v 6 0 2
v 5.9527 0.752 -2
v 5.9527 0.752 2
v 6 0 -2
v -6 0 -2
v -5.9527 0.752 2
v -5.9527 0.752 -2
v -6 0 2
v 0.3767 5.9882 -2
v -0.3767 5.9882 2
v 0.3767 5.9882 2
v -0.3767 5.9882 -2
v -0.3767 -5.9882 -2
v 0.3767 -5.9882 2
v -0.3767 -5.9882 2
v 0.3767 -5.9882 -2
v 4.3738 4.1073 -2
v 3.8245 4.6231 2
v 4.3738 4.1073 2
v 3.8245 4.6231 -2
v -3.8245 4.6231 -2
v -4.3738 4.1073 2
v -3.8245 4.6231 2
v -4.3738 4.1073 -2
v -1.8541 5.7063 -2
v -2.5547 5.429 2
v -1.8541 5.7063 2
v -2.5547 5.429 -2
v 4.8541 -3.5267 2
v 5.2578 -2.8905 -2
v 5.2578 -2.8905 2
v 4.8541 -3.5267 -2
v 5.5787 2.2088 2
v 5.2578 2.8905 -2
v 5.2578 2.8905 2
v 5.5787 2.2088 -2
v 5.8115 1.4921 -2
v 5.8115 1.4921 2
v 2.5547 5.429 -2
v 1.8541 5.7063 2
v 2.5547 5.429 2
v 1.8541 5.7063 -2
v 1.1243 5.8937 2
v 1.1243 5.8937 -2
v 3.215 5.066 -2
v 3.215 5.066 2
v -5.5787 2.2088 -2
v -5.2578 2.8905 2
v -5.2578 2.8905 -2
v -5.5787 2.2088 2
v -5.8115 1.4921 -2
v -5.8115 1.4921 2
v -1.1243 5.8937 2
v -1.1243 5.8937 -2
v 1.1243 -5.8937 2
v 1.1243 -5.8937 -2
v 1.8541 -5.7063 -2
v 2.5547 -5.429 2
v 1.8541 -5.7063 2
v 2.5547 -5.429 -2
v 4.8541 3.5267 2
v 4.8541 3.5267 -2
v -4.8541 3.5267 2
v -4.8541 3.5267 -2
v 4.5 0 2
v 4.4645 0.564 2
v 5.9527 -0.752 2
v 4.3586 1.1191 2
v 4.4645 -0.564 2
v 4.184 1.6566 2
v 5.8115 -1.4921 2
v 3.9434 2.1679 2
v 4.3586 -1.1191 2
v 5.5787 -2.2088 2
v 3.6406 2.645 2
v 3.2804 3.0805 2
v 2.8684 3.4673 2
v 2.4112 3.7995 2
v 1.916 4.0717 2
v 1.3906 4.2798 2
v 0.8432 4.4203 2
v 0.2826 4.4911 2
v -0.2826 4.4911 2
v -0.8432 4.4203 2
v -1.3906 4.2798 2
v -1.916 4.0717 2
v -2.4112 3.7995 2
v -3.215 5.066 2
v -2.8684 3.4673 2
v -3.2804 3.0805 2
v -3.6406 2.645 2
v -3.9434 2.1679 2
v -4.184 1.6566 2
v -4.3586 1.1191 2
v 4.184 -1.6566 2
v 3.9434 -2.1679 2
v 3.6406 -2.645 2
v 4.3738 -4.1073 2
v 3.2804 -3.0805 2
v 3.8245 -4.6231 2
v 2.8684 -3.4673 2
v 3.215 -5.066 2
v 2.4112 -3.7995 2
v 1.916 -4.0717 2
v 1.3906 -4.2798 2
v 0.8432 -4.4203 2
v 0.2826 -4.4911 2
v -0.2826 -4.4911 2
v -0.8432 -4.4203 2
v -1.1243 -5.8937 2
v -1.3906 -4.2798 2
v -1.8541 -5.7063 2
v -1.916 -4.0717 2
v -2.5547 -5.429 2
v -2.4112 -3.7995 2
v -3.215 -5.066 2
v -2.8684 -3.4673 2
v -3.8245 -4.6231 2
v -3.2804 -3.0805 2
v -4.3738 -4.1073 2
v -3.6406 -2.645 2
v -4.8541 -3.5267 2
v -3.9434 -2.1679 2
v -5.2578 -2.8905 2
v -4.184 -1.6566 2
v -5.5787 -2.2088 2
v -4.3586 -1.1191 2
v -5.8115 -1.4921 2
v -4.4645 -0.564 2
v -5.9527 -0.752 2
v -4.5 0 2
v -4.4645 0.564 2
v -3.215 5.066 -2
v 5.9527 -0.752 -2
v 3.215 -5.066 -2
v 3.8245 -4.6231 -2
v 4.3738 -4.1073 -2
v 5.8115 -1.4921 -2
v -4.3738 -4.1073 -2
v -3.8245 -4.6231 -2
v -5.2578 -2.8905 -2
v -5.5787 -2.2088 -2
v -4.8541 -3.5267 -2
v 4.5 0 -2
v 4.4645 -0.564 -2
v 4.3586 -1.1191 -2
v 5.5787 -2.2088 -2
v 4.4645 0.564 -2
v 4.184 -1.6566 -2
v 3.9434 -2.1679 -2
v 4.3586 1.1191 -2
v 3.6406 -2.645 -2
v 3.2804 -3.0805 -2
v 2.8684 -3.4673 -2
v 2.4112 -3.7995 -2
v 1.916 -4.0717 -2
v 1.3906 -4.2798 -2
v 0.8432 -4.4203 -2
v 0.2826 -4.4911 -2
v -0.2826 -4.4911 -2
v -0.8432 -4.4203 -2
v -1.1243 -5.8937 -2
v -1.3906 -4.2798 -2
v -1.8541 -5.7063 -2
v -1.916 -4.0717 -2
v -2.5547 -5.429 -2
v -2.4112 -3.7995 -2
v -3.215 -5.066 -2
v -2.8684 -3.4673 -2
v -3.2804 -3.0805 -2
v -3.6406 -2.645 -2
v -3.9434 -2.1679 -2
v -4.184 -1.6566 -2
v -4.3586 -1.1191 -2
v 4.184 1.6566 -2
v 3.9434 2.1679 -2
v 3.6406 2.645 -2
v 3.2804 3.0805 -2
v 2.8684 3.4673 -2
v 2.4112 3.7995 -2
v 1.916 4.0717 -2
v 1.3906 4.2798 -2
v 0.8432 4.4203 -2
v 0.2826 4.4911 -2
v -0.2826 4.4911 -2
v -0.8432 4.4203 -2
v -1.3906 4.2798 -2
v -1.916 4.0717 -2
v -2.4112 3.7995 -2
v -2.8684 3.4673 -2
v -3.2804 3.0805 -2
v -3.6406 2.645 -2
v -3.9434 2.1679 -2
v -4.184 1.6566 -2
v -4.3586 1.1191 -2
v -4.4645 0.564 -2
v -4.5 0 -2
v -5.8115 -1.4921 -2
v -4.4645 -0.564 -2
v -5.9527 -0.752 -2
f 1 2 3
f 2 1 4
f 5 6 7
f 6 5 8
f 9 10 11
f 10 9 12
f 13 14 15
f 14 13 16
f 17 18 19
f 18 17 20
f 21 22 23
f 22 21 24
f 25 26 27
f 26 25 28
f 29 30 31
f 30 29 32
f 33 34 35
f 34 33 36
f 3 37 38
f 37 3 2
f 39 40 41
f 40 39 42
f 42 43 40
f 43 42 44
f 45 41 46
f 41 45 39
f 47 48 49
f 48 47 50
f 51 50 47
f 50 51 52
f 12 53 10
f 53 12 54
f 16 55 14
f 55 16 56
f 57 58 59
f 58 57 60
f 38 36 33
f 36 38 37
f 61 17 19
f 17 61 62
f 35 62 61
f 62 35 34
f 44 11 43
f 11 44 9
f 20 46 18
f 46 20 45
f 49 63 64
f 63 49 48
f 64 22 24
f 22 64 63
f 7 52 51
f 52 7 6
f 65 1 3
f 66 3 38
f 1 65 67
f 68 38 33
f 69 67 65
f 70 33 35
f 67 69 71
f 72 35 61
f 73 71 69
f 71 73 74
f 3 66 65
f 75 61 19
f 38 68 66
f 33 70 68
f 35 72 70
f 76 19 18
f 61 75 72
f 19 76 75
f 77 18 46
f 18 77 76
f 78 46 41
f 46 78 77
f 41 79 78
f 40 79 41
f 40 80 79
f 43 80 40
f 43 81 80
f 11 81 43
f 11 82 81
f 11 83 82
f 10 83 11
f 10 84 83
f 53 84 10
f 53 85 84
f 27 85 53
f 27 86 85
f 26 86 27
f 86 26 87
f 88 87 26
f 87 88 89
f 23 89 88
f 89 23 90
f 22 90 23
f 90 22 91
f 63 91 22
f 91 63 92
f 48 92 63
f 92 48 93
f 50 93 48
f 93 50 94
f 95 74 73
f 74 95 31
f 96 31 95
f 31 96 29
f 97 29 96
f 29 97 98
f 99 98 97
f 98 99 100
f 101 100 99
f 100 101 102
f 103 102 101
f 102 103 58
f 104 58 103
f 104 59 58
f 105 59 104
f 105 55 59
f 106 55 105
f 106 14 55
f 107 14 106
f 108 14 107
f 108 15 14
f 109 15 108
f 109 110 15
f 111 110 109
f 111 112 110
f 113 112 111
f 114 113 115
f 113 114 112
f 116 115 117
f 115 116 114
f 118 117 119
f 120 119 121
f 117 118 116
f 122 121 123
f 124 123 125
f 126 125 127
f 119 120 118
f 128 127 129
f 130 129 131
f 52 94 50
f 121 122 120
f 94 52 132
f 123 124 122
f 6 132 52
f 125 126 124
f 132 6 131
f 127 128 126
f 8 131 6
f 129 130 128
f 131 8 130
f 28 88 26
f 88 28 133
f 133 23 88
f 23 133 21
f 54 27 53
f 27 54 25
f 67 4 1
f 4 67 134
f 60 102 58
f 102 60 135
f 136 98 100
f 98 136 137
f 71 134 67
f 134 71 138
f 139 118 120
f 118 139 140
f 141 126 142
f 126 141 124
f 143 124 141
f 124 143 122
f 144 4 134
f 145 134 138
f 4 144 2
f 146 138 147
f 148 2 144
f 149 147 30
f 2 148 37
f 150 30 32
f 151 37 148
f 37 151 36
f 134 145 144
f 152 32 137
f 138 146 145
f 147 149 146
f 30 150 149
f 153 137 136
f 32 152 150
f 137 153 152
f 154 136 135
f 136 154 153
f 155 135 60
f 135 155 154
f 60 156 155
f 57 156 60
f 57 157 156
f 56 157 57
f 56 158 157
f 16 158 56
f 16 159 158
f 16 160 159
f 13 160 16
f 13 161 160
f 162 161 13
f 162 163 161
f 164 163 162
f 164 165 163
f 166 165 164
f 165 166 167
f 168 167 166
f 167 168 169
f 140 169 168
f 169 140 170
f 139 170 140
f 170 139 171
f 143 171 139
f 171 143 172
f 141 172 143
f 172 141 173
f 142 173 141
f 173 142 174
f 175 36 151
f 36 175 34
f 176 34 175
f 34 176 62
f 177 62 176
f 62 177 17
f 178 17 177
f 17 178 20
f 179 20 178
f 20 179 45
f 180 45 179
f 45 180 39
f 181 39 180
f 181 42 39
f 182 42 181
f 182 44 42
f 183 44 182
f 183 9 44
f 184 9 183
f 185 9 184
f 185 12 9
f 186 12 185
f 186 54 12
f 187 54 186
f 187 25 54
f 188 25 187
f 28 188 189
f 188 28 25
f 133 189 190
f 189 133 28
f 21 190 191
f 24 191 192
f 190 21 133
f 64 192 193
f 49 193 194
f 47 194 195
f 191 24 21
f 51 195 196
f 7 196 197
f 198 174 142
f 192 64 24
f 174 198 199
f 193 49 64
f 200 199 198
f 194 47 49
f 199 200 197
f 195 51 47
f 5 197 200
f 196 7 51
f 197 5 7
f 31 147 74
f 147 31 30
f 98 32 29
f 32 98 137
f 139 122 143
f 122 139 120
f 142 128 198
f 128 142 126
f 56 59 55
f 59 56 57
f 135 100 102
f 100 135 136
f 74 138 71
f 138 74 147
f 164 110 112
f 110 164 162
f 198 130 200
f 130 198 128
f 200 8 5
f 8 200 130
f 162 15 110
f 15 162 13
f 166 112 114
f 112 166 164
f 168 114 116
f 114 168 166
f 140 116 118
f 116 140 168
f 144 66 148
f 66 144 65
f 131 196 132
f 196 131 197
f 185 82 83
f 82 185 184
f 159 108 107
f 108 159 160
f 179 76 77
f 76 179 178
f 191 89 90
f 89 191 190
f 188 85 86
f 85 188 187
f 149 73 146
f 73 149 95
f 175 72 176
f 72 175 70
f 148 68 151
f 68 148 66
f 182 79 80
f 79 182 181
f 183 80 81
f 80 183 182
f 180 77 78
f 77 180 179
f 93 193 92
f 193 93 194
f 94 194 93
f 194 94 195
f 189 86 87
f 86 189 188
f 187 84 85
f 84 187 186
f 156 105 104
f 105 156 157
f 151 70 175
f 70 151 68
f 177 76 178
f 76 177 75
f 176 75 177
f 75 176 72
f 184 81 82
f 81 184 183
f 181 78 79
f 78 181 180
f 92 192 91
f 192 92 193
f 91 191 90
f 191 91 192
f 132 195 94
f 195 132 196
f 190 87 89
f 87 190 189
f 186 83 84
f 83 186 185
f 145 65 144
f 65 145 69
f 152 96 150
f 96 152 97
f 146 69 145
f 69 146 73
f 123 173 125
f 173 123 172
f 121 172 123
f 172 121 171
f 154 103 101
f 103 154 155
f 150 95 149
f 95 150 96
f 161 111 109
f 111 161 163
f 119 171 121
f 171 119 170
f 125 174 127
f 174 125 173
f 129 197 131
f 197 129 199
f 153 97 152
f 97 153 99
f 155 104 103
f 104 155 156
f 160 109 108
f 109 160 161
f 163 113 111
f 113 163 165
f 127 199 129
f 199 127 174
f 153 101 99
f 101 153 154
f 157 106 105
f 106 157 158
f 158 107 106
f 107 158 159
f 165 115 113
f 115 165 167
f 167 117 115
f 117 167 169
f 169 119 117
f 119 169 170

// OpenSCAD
$fn = 50;


difference() {
	union() {
		translate(v = [0, 0, -2.0000000000]) {
			cylinder(h = 4, r = 6.0000000000);
		}
	}
	union() {
		translate(v = [0, 0, -100.0000000000]) {
			cylinder(h = 200, r = 4.5000000000);
		}
	}
}
